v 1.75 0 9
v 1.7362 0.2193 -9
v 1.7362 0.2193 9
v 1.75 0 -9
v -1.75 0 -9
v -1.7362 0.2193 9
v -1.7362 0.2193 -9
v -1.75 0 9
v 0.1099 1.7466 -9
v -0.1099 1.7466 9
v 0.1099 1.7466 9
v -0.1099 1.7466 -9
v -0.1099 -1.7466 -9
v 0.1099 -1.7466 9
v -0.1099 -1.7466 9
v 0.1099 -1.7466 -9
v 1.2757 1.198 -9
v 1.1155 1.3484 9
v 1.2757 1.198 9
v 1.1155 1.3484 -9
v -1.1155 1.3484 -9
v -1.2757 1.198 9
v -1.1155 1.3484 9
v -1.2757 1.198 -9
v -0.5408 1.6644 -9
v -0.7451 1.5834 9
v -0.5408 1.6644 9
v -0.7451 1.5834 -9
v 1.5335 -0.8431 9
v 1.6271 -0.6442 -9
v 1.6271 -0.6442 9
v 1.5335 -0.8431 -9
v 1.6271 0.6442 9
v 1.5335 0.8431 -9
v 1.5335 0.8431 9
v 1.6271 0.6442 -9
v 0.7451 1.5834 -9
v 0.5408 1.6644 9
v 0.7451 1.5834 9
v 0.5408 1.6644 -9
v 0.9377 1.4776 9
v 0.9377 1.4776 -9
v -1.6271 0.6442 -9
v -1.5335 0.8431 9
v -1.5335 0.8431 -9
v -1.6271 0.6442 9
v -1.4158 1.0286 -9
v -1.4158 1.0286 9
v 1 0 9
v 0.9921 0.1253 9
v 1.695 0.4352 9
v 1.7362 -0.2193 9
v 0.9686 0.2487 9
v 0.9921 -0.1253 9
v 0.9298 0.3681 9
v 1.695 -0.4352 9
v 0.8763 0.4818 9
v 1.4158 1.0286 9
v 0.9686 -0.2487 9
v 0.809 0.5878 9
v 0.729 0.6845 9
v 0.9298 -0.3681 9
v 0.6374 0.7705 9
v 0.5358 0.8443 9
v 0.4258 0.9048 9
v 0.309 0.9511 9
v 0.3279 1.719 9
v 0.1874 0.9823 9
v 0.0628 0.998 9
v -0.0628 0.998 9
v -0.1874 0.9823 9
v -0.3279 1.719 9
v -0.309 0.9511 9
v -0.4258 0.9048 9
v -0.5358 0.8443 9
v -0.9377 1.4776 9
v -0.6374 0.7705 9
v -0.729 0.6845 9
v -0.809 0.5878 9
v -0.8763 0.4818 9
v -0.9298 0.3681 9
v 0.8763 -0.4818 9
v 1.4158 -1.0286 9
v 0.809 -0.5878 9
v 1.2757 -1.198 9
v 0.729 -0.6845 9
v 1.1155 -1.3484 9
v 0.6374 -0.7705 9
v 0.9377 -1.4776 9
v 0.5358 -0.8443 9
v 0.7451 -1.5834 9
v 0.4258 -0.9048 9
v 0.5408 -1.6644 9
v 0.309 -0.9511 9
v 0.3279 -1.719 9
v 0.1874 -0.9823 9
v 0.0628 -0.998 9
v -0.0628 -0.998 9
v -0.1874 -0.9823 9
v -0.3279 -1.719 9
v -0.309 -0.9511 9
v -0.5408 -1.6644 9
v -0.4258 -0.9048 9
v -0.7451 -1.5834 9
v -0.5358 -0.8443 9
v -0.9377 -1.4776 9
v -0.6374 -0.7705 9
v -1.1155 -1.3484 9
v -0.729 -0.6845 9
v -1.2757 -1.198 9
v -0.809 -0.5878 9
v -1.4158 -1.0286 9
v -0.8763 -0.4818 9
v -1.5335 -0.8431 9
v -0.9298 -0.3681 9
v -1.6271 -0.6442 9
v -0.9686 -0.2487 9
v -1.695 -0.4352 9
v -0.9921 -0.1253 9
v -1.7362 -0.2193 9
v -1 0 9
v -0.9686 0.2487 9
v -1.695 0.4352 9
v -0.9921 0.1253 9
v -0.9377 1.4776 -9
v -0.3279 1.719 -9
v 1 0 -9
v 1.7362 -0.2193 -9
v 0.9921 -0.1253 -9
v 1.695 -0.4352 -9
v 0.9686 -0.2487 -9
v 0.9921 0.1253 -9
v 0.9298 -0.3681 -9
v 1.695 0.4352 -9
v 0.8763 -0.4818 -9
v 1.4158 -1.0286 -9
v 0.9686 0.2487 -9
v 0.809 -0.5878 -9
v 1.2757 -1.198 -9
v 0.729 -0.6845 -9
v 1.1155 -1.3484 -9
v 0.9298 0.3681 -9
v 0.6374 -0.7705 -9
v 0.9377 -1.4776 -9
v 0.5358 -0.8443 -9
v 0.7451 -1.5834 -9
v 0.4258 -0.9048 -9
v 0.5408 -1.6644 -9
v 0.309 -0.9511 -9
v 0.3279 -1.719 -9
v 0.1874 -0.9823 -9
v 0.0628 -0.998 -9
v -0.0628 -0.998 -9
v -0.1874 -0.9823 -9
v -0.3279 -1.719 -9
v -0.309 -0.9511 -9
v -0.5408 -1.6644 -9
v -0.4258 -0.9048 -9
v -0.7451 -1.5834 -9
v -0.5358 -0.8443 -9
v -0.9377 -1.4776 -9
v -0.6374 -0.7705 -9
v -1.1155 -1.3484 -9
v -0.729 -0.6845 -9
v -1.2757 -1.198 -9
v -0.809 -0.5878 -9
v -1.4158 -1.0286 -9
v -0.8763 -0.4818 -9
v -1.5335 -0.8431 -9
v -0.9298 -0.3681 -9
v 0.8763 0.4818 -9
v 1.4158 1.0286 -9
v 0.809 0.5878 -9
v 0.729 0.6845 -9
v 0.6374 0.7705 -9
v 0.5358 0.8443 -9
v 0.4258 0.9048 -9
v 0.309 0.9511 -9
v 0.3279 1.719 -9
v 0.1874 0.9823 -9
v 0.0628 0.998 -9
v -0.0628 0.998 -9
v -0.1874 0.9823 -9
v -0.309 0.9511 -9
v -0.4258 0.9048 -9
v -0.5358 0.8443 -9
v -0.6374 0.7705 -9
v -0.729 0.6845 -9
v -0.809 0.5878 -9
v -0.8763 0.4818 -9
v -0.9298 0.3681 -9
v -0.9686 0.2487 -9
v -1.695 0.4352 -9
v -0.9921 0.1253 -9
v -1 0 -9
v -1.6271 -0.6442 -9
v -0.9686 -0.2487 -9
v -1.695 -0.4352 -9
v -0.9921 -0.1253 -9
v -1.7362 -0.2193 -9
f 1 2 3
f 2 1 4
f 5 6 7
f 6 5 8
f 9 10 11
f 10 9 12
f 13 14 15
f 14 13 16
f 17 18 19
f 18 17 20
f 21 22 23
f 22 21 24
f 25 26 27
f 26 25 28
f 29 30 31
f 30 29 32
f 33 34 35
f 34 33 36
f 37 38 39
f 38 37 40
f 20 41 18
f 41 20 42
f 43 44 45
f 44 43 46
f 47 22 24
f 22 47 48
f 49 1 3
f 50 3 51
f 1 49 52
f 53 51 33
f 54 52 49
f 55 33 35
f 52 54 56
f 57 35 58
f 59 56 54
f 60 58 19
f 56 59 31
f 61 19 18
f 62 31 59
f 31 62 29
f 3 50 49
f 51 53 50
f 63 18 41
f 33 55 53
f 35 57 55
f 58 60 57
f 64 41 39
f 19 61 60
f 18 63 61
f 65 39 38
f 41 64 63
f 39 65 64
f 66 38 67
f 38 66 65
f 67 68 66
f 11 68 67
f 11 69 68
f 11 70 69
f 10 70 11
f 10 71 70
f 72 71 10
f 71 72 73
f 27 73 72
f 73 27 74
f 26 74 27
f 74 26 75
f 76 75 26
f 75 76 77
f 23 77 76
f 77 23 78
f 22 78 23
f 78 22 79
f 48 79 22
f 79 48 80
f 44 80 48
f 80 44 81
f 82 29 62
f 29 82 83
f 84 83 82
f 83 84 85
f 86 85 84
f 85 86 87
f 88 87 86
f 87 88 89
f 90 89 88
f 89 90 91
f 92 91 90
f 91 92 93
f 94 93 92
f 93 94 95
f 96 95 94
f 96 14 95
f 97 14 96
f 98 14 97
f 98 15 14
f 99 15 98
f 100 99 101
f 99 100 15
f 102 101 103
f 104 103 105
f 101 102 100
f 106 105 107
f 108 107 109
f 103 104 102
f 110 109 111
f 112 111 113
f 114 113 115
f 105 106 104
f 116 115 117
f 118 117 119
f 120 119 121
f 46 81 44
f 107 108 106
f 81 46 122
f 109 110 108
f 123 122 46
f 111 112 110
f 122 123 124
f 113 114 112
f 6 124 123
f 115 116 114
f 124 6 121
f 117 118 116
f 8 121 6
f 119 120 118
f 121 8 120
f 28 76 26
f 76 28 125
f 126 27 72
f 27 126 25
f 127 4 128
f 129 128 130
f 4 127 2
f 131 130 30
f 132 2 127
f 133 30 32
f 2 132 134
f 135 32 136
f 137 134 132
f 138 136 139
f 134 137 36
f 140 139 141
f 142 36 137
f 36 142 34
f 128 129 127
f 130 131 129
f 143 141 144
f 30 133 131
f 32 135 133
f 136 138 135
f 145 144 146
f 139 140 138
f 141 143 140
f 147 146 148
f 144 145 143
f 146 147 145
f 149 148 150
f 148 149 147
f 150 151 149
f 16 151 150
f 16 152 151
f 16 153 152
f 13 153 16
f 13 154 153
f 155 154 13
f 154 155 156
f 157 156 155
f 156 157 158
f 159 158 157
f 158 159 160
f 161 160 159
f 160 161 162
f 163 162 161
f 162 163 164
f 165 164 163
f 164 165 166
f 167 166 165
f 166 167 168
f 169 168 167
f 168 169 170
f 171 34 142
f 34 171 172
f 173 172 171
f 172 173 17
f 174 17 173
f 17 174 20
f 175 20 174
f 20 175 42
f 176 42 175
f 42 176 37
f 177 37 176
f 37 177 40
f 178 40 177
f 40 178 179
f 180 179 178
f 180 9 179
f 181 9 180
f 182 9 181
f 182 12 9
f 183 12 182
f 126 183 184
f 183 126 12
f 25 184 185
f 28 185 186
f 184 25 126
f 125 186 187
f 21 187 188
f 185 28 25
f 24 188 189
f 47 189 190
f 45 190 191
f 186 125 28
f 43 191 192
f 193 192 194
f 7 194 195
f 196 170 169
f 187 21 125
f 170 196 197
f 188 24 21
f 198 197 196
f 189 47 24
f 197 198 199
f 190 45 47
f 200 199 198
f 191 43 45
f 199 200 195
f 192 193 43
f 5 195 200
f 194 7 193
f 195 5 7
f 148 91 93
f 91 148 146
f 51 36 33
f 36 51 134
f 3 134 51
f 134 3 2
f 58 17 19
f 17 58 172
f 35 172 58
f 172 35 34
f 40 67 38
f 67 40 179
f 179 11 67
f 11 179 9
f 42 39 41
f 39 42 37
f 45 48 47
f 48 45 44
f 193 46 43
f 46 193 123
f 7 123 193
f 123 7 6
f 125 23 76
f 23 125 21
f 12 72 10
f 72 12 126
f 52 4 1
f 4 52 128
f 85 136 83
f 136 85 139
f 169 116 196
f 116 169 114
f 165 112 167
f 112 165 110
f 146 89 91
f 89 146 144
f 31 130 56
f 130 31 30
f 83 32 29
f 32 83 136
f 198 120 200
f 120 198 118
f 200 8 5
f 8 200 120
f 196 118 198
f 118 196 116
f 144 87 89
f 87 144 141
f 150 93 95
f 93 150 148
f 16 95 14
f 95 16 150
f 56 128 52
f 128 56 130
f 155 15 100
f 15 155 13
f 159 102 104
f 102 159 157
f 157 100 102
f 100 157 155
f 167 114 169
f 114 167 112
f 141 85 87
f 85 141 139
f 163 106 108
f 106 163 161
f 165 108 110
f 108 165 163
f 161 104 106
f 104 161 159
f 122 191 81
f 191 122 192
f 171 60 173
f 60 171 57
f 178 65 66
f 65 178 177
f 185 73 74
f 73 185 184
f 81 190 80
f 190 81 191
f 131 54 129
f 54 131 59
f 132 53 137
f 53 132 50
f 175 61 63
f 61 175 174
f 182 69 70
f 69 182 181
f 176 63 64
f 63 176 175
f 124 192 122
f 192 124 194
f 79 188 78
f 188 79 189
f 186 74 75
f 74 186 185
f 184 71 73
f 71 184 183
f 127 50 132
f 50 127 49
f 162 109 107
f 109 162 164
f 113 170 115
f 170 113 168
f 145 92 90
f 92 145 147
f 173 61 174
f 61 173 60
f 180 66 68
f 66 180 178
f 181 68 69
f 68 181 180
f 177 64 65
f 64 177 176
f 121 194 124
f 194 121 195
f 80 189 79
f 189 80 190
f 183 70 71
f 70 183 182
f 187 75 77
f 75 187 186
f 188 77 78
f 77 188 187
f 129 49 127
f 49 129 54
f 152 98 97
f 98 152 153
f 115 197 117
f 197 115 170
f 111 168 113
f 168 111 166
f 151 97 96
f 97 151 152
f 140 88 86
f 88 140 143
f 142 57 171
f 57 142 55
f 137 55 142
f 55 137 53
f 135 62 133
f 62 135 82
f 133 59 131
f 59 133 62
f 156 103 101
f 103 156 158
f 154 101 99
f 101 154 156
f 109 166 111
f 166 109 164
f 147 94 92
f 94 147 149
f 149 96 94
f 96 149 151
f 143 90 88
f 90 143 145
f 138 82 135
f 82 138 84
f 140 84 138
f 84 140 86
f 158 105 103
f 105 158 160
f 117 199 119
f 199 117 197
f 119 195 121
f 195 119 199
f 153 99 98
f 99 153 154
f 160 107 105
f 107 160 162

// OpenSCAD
$fn = 50;


difference() {
	union() {
		translate(v = [0, 0, -9.0000000000]) {
			cylinder(h = 18, r = 1.7500000000);
		}
	}
	union() {
		translate(v = [0, 0, -100.0000000000]) {
			cylinder(h = 200, r = 1.0000000000);
		}
	}
}
